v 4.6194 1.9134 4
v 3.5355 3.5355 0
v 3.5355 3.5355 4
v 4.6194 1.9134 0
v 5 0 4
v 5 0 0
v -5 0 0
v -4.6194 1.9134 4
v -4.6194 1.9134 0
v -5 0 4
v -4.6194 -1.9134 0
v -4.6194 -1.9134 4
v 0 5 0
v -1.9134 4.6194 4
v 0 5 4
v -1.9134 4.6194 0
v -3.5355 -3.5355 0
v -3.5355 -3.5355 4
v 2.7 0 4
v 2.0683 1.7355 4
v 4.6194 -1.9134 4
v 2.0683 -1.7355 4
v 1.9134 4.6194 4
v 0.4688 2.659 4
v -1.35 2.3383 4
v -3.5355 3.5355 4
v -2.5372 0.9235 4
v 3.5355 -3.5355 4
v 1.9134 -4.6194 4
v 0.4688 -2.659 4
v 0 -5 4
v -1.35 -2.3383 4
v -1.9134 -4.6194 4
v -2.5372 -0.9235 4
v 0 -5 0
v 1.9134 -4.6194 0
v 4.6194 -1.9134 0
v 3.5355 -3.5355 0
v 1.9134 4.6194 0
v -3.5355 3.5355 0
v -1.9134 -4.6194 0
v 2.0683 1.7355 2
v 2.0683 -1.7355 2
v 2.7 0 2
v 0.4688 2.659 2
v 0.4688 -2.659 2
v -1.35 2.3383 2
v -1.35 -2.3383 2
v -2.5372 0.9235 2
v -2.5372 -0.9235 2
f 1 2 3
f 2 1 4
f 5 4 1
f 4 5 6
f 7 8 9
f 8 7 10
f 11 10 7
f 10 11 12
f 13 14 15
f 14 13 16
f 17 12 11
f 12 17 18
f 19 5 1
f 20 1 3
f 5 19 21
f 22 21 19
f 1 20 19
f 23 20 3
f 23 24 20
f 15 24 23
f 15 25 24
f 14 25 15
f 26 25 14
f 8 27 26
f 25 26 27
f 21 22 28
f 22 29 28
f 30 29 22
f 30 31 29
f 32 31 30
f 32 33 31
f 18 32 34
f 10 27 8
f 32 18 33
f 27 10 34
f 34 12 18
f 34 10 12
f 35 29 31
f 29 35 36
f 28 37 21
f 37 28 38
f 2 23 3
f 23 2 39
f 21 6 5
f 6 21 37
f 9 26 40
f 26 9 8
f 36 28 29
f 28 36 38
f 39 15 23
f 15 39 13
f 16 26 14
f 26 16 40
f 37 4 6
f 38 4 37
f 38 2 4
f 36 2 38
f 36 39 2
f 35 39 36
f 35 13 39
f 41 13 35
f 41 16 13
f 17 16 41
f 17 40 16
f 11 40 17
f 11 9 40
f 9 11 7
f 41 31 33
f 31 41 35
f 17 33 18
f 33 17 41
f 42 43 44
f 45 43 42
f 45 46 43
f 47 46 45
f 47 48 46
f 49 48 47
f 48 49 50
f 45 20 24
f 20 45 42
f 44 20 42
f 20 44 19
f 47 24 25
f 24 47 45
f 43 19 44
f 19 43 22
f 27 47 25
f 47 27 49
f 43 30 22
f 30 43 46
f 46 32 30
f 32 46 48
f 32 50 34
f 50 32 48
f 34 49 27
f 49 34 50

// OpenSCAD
difference() {
    cylinder(h=4, d=10);
    translate([0,0,2]) {
        cylinder(h=130,d=5.4);
    };
};
